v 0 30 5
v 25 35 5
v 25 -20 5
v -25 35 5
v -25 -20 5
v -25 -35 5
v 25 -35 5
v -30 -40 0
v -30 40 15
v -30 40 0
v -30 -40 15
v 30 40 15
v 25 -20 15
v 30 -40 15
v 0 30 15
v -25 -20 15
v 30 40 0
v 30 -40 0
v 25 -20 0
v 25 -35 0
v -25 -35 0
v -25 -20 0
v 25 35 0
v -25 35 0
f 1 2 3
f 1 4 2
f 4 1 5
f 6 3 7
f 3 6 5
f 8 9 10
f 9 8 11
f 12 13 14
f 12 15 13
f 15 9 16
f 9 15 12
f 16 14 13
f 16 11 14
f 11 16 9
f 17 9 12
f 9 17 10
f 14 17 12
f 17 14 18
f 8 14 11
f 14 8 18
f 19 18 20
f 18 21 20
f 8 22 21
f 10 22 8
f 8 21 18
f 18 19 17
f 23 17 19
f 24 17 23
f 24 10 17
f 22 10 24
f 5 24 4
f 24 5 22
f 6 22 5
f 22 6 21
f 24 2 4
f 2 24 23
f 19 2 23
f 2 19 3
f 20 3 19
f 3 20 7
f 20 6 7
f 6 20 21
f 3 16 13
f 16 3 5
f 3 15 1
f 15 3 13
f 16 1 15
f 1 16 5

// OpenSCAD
difference() {

  union() {
    translate([0,0,5]) linear_extrude(10) square([60,80], true);
    linear_extrude(5) difference() {
      square([60,80], true);
      square([50,70], true);
    }
  }
  color("blue") translate([-25,-20,0]) linear_extrude(20) polygon( [ [0,0],[50/2, 50], [50,0]  ] );
}
